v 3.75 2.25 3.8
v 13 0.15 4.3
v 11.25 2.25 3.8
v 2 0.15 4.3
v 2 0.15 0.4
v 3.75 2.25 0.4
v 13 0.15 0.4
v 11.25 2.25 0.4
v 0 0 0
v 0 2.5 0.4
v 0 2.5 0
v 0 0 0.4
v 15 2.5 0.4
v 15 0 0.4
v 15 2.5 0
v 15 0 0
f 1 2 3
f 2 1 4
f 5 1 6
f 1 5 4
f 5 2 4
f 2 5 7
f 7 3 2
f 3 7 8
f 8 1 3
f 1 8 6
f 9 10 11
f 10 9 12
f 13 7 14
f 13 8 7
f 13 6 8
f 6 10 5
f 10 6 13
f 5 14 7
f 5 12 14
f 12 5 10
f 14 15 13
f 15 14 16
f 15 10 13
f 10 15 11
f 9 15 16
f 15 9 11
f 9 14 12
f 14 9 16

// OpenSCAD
displayEdge = 11;
caseEdge = 7.5;
caseEdgeDiff = displayEdge-caseEdge;
height = 2.1;
depth = 4.1;
zInterval = 0.5;
translate([2,0.15,0.2])polyhedron(
       points=[[0,0,0], [displayEdge,0,0],
       [caseEdgeDiff/2,height,0], [caseEdge+caseEdgeDiff/2, height, 0], [0,0,depth],
       [displayEdge,0,depth], [caseEdgeDiff/2,height,depth-zInterval],
       [caseEdge+caseEdgeDiff/2, height, depth-zInterval]],
       faces=[[2,3,1,0],[4,5,7,6],[4,6,2,0],[1,5,4,0], [3,7,5,1], [2,6,7,3]]
       );
      
cube([15,2.5,0.4]);
